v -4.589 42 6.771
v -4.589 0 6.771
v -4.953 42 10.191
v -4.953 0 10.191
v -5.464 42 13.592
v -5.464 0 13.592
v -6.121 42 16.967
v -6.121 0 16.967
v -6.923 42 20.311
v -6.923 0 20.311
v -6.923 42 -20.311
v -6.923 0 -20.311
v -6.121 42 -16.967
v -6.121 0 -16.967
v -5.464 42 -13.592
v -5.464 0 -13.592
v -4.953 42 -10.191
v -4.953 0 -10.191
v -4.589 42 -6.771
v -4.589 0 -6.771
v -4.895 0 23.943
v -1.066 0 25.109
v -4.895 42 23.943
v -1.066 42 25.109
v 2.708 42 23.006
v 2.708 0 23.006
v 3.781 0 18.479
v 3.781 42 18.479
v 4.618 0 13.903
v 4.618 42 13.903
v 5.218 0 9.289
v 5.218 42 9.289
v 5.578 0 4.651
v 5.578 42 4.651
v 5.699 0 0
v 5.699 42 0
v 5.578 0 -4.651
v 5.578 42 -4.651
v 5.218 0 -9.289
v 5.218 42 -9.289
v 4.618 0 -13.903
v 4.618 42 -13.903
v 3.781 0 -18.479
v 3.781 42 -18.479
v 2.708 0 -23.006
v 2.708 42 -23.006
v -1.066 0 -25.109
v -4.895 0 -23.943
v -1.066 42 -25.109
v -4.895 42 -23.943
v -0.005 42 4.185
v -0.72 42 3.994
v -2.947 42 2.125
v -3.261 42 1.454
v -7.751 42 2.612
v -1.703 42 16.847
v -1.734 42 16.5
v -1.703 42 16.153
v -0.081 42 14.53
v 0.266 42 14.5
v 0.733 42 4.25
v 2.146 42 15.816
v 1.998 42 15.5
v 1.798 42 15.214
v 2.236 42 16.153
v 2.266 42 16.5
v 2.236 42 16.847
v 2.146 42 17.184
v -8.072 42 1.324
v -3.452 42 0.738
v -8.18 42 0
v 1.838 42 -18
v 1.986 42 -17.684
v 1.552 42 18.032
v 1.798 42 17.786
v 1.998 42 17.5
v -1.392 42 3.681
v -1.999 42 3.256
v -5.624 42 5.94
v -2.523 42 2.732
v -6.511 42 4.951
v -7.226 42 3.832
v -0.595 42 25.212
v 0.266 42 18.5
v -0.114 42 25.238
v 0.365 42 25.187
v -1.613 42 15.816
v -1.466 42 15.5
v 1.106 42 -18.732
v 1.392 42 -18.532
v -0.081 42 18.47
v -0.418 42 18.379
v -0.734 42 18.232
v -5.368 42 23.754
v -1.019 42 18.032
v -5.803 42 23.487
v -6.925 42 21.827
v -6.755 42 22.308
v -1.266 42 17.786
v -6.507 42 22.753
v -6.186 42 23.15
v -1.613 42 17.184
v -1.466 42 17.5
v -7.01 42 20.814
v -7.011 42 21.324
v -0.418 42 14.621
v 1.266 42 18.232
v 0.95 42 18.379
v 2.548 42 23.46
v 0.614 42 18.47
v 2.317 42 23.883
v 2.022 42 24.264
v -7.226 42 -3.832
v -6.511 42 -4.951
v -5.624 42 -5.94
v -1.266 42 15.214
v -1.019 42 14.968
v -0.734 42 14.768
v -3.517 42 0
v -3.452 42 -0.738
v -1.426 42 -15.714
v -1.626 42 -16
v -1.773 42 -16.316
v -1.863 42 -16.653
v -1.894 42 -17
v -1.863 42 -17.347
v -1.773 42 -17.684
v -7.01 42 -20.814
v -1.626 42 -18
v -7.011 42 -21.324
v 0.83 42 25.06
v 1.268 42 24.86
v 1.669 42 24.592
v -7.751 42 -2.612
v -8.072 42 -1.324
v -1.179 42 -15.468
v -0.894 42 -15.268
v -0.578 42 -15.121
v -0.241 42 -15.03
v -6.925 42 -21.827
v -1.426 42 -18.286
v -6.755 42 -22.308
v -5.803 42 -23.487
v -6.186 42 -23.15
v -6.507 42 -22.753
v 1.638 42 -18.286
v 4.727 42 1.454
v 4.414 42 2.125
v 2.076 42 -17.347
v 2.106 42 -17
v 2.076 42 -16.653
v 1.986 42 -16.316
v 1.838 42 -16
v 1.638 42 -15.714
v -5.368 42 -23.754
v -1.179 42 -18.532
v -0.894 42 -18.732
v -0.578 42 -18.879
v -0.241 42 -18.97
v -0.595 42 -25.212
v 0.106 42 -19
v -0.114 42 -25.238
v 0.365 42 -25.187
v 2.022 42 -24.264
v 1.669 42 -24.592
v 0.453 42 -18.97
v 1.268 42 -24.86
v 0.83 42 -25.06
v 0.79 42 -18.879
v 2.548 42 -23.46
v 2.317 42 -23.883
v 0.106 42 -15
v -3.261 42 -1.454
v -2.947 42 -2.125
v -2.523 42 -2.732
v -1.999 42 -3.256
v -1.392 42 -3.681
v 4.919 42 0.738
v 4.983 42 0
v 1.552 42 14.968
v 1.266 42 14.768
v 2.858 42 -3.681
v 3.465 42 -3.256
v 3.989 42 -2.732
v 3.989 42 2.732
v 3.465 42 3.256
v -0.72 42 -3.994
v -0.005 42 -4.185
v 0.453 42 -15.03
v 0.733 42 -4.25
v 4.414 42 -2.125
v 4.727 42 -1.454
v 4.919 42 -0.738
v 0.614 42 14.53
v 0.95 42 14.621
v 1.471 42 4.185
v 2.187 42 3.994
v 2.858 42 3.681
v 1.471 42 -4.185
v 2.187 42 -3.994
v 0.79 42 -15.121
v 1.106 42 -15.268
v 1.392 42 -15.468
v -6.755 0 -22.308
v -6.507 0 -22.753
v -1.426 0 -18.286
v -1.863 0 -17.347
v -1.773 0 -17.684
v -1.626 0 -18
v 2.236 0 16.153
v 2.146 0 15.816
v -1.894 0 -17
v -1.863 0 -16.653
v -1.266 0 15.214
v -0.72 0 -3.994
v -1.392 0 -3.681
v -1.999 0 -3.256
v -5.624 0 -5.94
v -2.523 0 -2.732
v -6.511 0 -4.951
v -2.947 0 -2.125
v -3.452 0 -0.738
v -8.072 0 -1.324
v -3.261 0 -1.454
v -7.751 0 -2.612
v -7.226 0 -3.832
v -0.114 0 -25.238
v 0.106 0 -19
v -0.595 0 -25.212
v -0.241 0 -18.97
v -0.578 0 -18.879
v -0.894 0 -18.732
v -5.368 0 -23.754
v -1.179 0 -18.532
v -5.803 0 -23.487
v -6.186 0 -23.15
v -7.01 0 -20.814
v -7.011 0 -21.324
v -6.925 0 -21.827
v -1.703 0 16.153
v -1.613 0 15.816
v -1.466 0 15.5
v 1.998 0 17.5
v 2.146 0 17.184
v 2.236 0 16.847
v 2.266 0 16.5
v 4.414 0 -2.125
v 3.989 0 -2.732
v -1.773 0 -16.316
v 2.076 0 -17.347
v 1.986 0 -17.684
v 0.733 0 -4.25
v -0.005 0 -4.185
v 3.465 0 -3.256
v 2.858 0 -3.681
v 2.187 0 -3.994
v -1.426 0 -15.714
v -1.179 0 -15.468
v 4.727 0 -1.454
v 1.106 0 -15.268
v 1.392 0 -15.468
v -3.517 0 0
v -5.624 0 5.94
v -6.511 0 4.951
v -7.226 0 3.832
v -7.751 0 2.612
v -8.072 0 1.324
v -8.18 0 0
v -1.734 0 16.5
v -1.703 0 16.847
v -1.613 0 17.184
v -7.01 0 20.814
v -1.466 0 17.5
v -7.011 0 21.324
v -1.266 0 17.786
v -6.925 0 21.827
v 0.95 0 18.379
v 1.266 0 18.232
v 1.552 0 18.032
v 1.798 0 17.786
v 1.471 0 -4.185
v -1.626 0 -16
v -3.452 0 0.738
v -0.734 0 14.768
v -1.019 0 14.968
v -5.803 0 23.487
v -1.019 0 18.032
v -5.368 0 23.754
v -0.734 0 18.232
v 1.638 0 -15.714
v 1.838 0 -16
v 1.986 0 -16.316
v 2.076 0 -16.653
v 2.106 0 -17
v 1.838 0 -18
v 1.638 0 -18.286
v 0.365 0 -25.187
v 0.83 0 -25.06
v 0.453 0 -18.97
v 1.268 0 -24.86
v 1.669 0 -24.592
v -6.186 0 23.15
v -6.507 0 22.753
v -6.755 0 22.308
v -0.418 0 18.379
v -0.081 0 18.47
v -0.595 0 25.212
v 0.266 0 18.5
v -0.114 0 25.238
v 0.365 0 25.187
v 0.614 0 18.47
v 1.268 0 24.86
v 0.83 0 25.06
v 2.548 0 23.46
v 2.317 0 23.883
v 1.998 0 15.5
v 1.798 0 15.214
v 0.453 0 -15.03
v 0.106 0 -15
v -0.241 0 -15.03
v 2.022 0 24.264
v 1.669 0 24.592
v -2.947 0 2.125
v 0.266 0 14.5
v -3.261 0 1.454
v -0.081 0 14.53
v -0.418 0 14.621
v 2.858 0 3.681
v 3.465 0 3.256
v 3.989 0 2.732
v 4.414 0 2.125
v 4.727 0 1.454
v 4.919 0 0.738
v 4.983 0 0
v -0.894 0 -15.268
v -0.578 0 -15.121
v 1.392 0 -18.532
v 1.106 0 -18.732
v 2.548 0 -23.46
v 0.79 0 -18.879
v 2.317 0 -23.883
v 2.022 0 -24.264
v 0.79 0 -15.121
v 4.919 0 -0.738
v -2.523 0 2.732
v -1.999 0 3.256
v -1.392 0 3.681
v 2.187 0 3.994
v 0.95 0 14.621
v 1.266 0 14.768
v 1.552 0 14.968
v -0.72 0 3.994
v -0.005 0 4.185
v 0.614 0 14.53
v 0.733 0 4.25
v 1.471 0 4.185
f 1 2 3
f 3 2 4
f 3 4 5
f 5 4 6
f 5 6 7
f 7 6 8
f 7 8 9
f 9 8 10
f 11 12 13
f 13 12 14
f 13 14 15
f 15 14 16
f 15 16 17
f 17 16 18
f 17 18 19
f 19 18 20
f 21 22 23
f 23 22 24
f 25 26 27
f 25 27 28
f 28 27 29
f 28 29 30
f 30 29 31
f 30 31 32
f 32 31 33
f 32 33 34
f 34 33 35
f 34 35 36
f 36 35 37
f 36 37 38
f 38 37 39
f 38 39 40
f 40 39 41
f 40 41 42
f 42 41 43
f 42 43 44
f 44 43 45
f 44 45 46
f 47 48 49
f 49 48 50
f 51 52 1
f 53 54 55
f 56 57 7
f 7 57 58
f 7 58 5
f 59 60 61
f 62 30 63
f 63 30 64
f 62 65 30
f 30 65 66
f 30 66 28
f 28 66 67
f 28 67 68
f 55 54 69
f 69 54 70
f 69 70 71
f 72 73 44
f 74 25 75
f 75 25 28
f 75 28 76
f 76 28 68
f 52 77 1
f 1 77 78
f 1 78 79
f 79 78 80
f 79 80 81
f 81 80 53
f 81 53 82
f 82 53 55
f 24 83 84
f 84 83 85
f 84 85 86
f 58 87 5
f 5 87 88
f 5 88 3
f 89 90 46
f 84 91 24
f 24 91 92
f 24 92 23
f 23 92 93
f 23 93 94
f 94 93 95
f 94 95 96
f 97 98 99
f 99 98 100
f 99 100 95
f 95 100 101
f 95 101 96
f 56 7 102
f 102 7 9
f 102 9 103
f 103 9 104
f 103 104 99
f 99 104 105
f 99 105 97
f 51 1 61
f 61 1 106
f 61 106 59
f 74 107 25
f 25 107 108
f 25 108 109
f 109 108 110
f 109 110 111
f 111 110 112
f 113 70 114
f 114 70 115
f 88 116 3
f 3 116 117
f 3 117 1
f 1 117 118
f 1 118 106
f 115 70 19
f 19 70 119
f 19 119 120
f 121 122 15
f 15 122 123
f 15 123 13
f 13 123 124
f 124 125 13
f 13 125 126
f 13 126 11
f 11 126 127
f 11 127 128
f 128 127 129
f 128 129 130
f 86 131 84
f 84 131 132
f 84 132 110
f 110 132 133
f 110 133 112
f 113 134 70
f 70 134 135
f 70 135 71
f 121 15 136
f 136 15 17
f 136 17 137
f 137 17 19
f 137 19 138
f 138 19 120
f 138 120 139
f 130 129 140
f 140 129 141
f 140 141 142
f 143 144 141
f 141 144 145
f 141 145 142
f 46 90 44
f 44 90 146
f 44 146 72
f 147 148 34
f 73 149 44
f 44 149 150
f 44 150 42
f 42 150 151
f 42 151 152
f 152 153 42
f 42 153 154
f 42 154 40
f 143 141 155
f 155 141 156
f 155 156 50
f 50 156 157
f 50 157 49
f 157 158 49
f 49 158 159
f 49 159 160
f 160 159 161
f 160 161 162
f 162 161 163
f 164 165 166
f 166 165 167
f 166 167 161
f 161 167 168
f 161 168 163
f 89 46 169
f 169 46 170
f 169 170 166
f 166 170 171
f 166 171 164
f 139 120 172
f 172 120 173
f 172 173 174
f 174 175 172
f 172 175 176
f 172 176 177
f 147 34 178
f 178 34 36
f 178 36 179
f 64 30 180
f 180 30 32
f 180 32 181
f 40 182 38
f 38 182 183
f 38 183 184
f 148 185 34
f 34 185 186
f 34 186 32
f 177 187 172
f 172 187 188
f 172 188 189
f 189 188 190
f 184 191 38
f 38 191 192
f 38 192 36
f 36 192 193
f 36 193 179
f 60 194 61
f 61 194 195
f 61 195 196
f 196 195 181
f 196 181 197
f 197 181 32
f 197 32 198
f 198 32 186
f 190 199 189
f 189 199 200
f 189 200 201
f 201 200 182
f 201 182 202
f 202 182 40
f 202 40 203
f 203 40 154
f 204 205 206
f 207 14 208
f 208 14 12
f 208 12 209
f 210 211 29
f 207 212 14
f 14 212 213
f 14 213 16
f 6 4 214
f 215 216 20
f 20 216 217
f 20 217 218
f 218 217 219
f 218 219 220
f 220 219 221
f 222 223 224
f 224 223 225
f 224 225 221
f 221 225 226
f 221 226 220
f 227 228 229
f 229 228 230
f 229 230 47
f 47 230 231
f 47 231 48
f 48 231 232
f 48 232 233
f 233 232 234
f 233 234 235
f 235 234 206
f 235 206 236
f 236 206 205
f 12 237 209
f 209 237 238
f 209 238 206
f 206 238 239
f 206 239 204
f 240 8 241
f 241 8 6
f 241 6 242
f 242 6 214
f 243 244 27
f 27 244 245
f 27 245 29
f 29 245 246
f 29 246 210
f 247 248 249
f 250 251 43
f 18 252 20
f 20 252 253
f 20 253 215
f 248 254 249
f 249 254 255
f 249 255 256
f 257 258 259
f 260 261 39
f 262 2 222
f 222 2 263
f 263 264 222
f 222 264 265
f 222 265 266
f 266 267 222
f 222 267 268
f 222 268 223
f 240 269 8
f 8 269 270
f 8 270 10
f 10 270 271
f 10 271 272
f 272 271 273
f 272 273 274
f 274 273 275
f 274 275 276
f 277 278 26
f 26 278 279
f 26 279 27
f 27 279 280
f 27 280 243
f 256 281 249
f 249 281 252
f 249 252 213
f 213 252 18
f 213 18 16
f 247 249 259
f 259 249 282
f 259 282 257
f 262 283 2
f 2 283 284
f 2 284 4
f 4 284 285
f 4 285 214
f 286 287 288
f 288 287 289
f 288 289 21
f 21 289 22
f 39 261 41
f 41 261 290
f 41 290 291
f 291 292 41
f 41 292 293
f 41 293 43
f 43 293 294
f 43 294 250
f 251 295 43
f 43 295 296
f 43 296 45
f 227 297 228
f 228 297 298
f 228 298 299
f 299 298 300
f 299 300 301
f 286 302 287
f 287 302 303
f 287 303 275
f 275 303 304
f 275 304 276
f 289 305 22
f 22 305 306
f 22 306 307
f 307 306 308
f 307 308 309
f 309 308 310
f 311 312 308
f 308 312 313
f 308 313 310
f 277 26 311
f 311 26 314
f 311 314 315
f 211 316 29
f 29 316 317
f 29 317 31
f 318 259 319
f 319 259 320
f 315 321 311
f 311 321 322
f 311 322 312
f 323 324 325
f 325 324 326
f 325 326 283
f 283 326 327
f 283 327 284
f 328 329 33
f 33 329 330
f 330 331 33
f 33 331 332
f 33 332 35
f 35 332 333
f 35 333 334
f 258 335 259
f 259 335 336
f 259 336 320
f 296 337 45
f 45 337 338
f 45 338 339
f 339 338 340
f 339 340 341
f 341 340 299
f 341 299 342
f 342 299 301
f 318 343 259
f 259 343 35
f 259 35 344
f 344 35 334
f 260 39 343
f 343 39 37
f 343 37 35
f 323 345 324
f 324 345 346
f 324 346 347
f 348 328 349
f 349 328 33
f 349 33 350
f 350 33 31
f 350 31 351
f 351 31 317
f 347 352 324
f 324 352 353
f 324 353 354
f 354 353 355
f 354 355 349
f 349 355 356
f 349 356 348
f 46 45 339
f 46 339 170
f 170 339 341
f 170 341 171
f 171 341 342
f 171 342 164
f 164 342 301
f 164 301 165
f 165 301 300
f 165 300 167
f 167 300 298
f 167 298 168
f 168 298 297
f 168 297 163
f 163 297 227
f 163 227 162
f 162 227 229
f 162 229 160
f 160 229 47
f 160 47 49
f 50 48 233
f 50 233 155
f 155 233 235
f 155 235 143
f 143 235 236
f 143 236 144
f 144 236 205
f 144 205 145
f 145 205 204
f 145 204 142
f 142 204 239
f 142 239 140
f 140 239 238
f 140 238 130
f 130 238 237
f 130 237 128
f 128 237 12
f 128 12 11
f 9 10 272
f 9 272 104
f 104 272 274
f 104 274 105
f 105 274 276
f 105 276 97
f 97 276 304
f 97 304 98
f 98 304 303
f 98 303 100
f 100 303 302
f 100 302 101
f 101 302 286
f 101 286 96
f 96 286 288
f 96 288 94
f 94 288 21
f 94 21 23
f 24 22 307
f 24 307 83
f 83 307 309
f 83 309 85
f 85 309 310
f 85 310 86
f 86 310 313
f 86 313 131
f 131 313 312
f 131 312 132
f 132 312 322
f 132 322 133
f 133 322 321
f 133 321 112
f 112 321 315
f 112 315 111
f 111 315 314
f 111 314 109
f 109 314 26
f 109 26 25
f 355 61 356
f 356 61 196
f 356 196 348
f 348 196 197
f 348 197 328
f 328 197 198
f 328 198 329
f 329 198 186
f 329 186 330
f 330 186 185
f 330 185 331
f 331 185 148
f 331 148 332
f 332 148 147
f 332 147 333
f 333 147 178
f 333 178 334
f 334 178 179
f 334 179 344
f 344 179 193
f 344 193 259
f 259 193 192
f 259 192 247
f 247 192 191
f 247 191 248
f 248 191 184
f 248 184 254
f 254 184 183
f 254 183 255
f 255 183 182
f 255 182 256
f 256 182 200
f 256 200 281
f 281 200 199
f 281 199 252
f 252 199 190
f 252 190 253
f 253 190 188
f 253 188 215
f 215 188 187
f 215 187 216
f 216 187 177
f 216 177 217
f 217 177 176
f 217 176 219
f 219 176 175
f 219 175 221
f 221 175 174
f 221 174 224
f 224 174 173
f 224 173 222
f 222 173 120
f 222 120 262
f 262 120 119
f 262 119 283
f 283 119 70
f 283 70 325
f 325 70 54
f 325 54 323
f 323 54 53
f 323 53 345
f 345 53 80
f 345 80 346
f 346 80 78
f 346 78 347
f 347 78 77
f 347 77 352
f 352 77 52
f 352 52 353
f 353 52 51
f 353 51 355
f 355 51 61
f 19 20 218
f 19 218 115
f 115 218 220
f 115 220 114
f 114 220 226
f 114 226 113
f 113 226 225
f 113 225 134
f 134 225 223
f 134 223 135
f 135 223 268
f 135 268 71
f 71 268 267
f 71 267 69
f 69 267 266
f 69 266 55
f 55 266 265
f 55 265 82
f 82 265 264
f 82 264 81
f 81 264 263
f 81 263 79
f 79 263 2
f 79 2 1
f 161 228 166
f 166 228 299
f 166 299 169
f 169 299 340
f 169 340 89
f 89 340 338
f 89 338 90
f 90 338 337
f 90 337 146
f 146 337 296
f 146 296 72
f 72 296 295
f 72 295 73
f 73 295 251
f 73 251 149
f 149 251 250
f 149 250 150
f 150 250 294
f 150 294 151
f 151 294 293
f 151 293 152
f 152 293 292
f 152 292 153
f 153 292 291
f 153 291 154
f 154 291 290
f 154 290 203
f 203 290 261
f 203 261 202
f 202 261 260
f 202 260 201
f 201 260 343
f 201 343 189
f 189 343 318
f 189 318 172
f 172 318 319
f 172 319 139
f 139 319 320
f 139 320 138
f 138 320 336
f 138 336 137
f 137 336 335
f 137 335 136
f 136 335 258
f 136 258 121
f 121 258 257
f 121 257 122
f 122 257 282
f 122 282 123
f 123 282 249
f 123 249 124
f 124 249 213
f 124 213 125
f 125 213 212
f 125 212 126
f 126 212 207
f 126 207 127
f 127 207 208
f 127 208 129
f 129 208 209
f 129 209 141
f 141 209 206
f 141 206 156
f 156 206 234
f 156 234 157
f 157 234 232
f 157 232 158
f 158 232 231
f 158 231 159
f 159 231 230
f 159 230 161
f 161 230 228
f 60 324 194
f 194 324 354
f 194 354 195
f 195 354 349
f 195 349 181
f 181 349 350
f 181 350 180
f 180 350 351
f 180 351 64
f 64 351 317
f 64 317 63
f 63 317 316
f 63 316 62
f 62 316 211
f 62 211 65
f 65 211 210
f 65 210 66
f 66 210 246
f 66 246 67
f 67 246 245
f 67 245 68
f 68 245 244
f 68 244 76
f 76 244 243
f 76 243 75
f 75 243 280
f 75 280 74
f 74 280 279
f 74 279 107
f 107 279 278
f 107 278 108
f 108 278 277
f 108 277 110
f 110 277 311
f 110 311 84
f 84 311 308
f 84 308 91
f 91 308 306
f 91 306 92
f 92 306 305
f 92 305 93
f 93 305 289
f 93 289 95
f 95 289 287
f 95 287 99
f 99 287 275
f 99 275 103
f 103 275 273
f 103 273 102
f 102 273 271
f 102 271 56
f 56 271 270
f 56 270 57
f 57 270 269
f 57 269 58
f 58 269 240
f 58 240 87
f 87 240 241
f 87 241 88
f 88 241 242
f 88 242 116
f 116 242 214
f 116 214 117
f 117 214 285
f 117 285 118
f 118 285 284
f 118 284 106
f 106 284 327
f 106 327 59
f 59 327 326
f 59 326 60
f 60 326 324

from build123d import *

# Parameters (mm, degrees)
BOSS_EXTRUDE1_DEPTH = 42
FILLET1_R           = 3
SKETCH3_R           = 4.25
CUT_EXTRUDE1_DEPTH  = 50.500549163
BOSS_EXTRUDE2_DEPTH = 42
CUT_EXTRUDE2_DEPTH  = 50.678098566


with BuildPart() as part:
    # Sketch1 → Boss-Extrude1 (new body)
    with BuildSketch(Plane(origin=(0, 0, 0), x_dir=(1, 0, 0), z_dir=(0, 1, 0))):
        with BuildLine():
            Line((-7.705313318, 23.08749092), (1.86118947, 26))
            ThreePointArc((1.86118947, 26), (5.698552556, 0), (1.86118947, -26))
            Line((1.86118947, -26), (-7.705313318, -23.08749092))
            ThreePointArc((-7.705313318, -23.08749092), (-4.301447444, 0), (-7.705313318, 23.08749092))
        make_face()
    extrude(amount=BOSS_EXTRUDE1_DEPTH)

    # Fillet1
    fillet1_edges = [part.edges().sort_by_distance(p)[0] for p in [
        (-7.705313318, 21, -23.08749092),
        (1.86118947, 21, -26),
        (1.86118947, 21, 26),
        (-7.705313318, 21, 23.08749092),
    ]]
    fillet(fillet1_edges, radius=FILLET1_R)

    # Sketch3 → Cut-Extrude1 (cut, through all)
    with BuildSketch(Plane(origin=(0, 42, 0), x_dir=(1, 0, 0), z_dir=(0, 1, 0))):
        with Locations(Location((0.733117745, 0, 0), (0, 0, 270))):
            Circle(SKETCH3_R)
    extrude(amount=-CUT_EXTRUDE1_DEPTH, mode=Mode.SUBTRACT)

    # Sketch4 → Boss-Extrude2 (add)
    with BuildSketch(Plane(origin=(0, 0, 0), x_dir=(1, 0, 0), z_dir=(0, 1, 0))):
        with BuildLine():
            Line((-3.757374772, -7.265548226), (-3.757374772, 7.265548226))
            ThreePointArc((-3.757374772, 7.265548226), (-8.179612228, 0), (-3.757374772, -7.265548226))
        make_face()
    extrude(amount=BOSS_EXTRUDE2_DEPTH)

    # Sketch5 → Cut-Extrude2 (cut, through all)
    with BuildSketch(Plane.XZ):
        with BuildLine():
            ThreePointArc((2.266407335, 16.5), (1.434288795, 18.123592589), (-0.36964556, 18.396163684))
            ThreePointArc((-0.36964556, 18.396163684), (0.266407335, 16.5), (0.832937896, 14.58191681))
            ThreePointArc((0.832937896, 14.58191681), (1.868446836, 15.302724159), (2.266407335, 16.5))
        make_face()
        with BuildLine():
            ThreePointArc((0.832937896, 14.58191681), (0.266407335, 16.5), (-0.36964556, 18.396163684))
            ThreePointArc((-0.36964556, 18.396163684), (-1.641032871, 15.898608399), (0.832937896, 14.58191681))
        make_face()
        with BuildLine():
            ThreePointArc((0.690987711, -15.08742552), (-1.795468684, -16.380384411), (-0.548037667, -18.889990746))
            ThreePointArc((-0.548037667, -18.889990746), (0.106129728, -17), (0.690987711, -15.08742552))
        make_face()
        with BuildLine():
            ThreePointArc((0.690987711, -15.08742552), (0.106129728, -17), (-0.548037667, -18.889990746))
            ThreePointArc((-0.548037667, -18.889990746), (1.266229984, -18.629161562), (2.106129728, -17))
            ThreePointArc((2.106129728, -17), (1.713879081, -15.810402582), (0.690987711, -15.08742552))
        make_face()
    extrude(amount=-CUT_EXTRUDE2_DEPTH, mode=Mode.SUBTRACT)


solid = part.part
